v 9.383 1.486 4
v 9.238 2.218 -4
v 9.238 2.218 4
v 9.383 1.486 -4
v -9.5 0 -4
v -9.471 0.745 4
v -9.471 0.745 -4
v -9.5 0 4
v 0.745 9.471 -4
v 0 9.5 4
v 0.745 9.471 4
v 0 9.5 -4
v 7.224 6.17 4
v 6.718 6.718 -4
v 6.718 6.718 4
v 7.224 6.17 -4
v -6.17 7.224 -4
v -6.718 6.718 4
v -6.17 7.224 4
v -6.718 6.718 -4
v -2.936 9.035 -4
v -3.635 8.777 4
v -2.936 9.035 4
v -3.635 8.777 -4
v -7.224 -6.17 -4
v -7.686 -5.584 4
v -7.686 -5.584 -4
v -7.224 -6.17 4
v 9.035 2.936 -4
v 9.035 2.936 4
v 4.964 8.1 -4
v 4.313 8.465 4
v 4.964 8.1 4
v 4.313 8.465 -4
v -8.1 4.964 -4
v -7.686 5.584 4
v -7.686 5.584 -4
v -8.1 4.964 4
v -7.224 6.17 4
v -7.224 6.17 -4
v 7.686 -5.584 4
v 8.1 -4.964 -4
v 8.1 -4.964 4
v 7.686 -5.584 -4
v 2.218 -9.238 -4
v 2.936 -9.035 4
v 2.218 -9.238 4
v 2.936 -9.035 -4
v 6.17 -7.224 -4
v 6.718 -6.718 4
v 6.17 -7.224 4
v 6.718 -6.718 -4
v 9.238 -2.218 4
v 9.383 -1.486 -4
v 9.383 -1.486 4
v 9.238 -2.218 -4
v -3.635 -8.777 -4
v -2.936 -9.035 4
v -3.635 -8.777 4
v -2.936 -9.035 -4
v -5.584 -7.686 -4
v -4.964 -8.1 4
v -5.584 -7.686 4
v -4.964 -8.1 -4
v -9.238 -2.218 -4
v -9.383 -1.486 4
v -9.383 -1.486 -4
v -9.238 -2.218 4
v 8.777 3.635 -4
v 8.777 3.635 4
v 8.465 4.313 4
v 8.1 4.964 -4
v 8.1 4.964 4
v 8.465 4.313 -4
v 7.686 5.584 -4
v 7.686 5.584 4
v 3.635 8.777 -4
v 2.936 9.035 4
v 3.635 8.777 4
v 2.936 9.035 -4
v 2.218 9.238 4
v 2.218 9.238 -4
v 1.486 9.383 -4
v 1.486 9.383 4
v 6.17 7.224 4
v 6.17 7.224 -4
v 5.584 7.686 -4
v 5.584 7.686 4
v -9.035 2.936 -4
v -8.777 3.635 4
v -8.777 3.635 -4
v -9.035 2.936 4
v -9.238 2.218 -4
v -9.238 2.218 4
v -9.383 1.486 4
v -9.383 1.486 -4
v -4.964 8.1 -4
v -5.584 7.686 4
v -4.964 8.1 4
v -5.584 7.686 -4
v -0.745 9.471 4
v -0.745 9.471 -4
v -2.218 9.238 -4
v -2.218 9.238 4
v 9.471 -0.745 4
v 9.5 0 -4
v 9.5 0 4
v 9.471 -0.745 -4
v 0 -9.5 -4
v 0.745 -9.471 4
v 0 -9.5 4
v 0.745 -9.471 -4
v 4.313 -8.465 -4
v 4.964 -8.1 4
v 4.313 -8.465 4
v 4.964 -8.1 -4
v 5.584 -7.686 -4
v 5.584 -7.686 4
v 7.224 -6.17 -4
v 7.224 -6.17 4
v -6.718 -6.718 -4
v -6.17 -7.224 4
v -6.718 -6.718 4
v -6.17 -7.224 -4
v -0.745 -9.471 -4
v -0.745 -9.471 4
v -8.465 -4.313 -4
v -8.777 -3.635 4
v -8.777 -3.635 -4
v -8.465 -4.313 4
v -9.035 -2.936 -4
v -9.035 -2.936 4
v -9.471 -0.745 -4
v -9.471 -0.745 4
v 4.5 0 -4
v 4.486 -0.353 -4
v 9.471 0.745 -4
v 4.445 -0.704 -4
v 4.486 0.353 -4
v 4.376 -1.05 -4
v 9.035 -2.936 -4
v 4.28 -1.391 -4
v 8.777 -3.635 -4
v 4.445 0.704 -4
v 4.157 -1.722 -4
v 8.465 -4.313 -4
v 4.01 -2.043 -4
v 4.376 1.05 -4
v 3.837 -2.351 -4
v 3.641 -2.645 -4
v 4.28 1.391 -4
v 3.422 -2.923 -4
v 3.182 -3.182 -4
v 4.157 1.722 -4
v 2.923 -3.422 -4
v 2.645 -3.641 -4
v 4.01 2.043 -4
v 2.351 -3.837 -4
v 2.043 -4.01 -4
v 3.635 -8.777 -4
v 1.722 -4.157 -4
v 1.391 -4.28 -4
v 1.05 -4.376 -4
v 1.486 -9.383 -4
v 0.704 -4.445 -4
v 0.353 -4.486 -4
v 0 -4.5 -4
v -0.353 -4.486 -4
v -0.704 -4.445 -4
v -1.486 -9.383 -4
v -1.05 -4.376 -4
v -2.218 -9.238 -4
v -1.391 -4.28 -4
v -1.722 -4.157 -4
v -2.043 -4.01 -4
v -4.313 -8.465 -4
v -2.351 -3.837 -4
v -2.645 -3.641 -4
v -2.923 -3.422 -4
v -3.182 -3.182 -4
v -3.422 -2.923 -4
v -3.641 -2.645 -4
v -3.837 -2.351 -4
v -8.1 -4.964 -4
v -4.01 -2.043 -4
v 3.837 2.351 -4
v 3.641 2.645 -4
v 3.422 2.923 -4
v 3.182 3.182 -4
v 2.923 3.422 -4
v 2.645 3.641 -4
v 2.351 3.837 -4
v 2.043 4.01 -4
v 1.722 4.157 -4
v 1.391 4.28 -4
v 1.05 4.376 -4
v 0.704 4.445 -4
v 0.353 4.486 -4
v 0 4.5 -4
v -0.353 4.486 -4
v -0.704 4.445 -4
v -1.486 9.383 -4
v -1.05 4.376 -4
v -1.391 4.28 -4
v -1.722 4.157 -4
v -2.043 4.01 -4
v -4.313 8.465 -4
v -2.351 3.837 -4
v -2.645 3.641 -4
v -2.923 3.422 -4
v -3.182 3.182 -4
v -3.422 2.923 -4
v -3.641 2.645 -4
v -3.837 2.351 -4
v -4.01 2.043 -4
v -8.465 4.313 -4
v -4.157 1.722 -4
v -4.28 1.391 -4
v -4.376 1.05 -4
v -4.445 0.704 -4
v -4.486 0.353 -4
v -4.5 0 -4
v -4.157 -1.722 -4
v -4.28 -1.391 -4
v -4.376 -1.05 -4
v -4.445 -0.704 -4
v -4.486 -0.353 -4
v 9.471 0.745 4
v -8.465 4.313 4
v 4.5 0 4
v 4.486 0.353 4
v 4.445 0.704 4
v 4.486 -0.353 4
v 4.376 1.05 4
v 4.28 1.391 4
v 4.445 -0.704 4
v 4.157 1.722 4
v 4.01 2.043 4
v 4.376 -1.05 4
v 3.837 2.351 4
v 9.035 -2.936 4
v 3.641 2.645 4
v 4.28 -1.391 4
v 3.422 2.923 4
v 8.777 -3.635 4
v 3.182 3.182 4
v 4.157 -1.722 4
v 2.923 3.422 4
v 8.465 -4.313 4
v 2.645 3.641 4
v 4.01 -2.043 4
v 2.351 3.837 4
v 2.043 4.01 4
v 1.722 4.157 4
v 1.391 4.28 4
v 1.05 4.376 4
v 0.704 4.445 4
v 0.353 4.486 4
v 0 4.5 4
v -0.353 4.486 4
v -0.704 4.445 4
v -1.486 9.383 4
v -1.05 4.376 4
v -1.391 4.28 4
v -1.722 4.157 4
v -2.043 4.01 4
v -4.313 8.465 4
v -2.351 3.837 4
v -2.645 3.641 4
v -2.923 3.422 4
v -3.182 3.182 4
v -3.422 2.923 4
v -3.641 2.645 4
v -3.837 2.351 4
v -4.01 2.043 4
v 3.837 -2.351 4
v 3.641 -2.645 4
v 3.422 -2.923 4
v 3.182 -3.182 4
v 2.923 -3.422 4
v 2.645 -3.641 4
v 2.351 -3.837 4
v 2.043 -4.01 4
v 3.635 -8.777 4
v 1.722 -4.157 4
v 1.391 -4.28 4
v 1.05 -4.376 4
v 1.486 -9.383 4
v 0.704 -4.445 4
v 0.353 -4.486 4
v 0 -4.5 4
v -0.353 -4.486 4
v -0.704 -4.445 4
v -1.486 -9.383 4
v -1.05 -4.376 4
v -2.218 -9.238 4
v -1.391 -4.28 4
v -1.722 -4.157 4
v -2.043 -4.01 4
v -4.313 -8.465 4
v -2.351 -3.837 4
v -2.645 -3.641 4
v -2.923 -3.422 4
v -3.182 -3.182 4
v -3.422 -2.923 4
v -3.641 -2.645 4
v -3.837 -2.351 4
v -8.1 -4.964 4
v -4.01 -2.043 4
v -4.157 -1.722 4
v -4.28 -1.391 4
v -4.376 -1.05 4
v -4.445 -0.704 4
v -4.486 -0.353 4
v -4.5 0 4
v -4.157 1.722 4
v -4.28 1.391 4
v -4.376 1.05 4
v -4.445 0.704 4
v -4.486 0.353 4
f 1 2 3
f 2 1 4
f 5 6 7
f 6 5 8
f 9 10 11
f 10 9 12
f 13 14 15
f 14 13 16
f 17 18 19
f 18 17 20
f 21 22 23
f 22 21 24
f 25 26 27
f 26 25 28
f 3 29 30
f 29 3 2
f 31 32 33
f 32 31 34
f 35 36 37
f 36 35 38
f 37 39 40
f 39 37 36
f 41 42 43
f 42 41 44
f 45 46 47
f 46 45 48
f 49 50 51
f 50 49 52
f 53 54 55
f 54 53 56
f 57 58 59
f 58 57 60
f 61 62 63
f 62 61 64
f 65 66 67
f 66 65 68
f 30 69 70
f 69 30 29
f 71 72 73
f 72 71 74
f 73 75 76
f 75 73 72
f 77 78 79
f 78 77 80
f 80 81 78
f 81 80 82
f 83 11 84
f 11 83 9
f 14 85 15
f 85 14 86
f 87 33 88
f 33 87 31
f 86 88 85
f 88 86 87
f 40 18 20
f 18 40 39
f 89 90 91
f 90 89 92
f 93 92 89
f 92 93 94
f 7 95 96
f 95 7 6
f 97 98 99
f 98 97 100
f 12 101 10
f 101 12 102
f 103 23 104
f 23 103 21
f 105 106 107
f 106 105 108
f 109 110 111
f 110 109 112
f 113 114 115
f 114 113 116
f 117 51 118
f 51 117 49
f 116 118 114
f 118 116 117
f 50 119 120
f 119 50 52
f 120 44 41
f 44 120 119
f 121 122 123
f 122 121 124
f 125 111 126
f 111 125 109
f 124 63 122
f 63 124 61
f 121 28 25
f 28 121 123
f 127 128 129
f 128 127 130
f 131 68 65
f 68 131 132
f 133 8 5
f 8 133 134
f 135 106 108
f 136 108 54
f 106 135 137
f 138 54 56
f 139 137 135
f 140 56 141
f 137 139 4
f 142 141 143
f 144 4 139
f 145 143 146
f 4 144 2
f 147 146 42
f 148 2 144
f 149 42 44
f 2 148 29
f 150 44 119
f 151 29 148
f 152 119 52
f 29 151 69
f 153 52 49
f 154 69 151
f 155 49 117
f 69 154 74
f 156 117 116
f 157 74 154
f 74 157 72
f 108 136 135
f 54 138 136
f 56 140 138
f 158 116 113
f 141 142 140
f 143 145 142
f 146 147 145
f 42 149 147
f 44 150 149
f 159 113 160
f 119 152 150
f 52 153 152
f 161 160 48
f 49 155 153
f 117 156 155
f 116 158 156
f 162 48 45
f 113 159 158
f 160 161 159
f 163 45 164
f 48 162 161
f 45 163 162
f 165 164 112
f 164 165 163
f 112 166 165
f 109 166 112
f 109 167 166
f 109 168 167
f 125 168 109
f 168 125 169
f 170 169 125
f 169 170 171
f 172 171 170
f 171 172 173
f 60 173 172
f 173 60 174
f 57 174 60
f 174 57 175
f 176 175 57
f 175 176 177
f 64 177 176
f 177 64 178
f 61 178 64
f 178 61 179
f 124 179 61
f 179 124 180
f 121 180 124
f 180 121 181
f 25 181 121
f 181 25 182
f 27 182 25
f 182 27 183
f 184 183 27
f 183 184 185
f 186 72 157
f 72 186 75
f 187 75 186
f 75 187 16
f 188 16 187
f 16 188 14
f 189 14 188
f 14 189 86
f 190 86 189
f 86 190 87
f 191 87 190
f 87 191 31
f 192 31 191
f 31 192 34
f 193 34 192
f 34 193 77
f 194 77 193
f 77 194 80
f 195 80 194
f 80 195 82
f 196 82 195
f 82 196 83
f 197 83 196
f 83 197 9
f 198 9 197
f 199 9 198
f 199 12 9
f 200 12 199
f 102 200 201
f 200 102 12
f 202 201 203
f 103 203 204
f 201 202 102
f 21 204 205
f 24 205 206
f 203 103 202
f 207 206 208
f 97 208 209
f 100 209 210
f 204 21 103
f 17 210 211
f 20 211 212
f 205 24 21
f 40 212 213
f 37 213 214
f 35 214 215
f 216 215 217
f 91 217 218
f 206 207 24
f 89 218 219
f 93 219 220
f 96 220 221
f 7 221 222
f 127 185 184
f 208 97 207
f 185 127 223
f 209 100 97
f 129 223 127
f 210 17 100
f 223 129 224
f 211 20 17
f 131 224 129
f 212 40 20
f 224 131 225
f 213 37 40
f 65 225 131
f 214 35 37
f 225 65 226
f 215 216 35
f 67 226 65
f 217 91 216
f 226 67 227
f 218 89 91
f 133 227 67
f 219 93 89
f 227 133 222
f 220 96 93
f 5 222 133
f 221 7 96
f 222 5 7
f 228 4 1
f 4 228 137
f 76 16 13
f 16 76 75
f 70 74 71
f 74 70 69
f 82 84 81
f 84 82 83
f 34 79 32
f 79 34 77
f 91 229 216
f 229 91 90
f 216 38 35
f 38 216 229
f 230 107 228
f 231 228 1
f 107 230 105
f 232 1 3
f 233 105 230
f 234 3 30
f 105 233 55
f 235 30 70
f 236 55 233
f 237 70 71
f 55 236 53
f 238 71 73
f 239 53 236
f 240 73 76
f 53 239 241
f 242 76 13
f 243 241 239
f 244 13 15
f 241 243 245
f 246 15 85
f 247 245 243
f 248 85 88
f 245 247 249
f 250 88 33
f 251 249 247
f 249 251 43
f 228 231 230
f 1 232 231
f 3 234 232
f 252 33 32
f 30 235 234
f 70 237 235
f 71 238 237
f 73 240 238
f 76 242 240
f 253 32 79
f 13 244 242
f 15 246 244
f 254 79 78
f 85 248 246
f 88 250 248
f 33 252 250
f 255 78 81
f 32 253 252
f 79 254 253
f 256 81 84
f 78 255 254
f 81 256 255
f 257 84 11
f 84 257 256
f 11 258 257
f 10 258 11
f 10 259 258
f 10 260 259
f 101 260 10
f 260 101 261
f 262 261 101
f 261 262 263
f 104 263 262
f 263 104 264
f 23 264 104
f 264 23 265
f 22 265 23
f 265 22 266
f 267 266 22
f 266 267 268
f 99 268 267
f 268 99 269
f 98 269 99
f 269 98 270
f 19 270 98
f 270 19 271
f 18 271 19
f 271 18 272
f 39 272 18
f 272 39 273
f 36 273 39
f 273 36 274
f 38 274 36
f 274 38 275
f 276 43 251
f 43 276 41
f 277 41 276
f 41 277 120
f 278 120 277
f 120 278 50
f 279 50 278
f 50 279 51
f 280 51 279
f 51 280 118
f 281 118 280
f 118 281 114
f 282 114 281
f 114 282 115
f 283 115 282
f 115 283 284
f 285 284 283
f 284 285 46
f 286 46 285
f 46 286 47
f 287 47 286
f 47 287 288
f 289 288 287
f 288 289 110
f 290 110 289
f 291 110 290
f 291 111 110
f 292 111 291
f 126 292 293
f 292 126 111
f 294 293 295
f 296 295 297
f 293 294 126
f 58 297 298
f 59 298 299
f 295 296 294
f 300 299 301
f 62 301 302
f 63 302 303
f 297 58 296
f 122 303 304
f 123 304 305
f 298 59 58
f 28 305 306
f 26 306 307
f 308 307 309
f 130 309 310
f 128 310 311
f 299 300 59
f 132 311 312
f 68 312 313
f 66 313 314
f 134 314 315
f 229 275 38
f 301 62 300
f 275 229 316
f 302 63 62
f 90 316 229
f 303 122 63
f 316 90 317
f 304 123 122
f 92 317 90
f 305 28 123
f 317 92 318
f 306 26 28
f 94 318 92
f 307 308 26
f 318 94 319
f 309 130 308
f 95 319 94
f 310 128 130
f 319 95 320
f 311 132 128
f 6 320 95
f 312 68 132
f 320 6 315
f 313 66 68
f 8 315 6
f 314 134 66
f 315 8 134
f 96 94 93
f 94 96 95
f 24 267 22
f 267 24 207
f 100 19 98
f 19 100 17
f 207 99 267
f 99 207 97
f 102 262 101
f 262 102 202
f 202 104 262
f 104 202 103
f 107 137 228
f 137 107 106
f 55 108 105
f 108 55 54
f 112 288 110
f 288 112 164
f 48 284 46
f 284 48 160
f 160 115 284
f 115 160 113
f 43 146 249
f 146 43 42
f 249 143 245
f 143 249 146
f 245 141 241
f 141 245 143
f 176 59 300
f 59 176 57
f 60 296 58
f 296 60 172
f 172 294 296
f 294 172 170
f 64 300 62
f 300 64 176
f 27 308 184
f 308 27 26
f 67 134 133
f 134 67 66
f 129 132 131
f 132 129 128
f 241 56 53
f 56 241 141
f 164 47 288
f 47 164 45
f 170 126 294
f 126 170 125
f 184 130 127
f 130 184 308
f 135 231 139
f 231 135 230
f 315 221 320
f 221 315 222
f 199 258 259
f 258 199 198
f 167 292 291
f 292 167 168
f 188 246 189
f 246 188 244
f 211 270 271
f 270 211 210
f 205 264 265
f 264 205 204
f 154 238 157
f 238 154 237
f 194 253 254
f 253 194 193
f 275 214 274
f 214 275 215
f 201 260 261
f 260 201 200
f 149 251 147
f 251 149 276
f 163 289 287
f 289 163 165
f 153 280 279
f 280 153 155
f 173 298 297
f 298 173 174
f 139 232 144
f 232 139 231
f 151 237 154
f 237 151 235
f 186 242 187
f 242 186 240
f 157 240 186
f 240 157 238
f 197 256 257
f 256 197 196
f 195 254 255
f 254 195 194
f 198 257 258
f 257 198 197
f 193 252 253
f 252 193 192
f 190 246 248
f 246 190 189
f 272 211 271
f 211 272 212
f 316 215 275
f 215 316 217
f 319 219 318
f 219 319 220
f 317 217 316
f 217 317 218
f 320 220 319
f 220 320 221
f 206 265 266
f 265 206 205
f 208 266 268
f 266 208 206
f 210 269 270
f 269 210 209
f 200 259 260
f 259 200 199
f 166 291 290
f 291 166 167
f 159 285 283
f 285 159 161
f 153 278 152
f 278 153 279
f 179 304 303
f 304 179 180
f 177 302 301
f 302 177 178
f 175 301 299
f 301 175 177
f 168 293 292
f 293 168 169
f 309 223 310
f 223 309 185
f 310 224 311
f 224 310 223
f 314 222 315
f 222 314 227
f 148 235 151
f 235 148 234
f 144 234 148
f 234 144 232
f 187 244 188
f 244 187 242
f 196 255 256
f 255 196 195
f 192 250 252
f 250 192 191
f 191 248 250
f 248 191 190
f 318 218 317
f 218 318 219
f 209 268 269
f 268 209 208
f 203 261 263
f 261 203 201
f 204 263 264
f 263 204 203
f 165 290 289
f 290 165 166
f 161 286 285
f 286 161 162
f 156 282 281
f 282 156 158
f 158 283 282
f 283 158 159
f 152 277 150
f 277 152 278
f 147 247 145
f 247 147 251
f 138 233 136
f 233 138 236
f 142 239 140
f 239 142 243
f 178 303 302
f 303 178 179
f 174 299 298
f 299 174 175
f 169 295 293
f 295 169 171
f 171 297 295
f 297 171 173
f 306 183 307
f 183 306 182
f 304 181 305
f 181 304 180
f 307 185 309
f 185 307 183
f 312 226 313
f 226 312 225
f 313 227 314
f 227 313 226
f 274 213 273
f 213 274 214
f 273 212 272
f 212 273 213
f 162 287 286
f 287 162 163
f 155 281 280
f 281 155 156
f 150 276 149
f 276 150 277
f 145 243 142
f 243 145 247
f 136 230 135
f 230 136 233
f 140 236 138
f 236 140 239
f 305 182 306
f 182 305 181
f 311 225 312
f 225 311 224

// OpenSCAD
difference() {
cylinder(r=9.50, h=8, center=true, $fn=80);
    cylinder(r=4.50, h=15, center=true, $fn=80);
    
}
